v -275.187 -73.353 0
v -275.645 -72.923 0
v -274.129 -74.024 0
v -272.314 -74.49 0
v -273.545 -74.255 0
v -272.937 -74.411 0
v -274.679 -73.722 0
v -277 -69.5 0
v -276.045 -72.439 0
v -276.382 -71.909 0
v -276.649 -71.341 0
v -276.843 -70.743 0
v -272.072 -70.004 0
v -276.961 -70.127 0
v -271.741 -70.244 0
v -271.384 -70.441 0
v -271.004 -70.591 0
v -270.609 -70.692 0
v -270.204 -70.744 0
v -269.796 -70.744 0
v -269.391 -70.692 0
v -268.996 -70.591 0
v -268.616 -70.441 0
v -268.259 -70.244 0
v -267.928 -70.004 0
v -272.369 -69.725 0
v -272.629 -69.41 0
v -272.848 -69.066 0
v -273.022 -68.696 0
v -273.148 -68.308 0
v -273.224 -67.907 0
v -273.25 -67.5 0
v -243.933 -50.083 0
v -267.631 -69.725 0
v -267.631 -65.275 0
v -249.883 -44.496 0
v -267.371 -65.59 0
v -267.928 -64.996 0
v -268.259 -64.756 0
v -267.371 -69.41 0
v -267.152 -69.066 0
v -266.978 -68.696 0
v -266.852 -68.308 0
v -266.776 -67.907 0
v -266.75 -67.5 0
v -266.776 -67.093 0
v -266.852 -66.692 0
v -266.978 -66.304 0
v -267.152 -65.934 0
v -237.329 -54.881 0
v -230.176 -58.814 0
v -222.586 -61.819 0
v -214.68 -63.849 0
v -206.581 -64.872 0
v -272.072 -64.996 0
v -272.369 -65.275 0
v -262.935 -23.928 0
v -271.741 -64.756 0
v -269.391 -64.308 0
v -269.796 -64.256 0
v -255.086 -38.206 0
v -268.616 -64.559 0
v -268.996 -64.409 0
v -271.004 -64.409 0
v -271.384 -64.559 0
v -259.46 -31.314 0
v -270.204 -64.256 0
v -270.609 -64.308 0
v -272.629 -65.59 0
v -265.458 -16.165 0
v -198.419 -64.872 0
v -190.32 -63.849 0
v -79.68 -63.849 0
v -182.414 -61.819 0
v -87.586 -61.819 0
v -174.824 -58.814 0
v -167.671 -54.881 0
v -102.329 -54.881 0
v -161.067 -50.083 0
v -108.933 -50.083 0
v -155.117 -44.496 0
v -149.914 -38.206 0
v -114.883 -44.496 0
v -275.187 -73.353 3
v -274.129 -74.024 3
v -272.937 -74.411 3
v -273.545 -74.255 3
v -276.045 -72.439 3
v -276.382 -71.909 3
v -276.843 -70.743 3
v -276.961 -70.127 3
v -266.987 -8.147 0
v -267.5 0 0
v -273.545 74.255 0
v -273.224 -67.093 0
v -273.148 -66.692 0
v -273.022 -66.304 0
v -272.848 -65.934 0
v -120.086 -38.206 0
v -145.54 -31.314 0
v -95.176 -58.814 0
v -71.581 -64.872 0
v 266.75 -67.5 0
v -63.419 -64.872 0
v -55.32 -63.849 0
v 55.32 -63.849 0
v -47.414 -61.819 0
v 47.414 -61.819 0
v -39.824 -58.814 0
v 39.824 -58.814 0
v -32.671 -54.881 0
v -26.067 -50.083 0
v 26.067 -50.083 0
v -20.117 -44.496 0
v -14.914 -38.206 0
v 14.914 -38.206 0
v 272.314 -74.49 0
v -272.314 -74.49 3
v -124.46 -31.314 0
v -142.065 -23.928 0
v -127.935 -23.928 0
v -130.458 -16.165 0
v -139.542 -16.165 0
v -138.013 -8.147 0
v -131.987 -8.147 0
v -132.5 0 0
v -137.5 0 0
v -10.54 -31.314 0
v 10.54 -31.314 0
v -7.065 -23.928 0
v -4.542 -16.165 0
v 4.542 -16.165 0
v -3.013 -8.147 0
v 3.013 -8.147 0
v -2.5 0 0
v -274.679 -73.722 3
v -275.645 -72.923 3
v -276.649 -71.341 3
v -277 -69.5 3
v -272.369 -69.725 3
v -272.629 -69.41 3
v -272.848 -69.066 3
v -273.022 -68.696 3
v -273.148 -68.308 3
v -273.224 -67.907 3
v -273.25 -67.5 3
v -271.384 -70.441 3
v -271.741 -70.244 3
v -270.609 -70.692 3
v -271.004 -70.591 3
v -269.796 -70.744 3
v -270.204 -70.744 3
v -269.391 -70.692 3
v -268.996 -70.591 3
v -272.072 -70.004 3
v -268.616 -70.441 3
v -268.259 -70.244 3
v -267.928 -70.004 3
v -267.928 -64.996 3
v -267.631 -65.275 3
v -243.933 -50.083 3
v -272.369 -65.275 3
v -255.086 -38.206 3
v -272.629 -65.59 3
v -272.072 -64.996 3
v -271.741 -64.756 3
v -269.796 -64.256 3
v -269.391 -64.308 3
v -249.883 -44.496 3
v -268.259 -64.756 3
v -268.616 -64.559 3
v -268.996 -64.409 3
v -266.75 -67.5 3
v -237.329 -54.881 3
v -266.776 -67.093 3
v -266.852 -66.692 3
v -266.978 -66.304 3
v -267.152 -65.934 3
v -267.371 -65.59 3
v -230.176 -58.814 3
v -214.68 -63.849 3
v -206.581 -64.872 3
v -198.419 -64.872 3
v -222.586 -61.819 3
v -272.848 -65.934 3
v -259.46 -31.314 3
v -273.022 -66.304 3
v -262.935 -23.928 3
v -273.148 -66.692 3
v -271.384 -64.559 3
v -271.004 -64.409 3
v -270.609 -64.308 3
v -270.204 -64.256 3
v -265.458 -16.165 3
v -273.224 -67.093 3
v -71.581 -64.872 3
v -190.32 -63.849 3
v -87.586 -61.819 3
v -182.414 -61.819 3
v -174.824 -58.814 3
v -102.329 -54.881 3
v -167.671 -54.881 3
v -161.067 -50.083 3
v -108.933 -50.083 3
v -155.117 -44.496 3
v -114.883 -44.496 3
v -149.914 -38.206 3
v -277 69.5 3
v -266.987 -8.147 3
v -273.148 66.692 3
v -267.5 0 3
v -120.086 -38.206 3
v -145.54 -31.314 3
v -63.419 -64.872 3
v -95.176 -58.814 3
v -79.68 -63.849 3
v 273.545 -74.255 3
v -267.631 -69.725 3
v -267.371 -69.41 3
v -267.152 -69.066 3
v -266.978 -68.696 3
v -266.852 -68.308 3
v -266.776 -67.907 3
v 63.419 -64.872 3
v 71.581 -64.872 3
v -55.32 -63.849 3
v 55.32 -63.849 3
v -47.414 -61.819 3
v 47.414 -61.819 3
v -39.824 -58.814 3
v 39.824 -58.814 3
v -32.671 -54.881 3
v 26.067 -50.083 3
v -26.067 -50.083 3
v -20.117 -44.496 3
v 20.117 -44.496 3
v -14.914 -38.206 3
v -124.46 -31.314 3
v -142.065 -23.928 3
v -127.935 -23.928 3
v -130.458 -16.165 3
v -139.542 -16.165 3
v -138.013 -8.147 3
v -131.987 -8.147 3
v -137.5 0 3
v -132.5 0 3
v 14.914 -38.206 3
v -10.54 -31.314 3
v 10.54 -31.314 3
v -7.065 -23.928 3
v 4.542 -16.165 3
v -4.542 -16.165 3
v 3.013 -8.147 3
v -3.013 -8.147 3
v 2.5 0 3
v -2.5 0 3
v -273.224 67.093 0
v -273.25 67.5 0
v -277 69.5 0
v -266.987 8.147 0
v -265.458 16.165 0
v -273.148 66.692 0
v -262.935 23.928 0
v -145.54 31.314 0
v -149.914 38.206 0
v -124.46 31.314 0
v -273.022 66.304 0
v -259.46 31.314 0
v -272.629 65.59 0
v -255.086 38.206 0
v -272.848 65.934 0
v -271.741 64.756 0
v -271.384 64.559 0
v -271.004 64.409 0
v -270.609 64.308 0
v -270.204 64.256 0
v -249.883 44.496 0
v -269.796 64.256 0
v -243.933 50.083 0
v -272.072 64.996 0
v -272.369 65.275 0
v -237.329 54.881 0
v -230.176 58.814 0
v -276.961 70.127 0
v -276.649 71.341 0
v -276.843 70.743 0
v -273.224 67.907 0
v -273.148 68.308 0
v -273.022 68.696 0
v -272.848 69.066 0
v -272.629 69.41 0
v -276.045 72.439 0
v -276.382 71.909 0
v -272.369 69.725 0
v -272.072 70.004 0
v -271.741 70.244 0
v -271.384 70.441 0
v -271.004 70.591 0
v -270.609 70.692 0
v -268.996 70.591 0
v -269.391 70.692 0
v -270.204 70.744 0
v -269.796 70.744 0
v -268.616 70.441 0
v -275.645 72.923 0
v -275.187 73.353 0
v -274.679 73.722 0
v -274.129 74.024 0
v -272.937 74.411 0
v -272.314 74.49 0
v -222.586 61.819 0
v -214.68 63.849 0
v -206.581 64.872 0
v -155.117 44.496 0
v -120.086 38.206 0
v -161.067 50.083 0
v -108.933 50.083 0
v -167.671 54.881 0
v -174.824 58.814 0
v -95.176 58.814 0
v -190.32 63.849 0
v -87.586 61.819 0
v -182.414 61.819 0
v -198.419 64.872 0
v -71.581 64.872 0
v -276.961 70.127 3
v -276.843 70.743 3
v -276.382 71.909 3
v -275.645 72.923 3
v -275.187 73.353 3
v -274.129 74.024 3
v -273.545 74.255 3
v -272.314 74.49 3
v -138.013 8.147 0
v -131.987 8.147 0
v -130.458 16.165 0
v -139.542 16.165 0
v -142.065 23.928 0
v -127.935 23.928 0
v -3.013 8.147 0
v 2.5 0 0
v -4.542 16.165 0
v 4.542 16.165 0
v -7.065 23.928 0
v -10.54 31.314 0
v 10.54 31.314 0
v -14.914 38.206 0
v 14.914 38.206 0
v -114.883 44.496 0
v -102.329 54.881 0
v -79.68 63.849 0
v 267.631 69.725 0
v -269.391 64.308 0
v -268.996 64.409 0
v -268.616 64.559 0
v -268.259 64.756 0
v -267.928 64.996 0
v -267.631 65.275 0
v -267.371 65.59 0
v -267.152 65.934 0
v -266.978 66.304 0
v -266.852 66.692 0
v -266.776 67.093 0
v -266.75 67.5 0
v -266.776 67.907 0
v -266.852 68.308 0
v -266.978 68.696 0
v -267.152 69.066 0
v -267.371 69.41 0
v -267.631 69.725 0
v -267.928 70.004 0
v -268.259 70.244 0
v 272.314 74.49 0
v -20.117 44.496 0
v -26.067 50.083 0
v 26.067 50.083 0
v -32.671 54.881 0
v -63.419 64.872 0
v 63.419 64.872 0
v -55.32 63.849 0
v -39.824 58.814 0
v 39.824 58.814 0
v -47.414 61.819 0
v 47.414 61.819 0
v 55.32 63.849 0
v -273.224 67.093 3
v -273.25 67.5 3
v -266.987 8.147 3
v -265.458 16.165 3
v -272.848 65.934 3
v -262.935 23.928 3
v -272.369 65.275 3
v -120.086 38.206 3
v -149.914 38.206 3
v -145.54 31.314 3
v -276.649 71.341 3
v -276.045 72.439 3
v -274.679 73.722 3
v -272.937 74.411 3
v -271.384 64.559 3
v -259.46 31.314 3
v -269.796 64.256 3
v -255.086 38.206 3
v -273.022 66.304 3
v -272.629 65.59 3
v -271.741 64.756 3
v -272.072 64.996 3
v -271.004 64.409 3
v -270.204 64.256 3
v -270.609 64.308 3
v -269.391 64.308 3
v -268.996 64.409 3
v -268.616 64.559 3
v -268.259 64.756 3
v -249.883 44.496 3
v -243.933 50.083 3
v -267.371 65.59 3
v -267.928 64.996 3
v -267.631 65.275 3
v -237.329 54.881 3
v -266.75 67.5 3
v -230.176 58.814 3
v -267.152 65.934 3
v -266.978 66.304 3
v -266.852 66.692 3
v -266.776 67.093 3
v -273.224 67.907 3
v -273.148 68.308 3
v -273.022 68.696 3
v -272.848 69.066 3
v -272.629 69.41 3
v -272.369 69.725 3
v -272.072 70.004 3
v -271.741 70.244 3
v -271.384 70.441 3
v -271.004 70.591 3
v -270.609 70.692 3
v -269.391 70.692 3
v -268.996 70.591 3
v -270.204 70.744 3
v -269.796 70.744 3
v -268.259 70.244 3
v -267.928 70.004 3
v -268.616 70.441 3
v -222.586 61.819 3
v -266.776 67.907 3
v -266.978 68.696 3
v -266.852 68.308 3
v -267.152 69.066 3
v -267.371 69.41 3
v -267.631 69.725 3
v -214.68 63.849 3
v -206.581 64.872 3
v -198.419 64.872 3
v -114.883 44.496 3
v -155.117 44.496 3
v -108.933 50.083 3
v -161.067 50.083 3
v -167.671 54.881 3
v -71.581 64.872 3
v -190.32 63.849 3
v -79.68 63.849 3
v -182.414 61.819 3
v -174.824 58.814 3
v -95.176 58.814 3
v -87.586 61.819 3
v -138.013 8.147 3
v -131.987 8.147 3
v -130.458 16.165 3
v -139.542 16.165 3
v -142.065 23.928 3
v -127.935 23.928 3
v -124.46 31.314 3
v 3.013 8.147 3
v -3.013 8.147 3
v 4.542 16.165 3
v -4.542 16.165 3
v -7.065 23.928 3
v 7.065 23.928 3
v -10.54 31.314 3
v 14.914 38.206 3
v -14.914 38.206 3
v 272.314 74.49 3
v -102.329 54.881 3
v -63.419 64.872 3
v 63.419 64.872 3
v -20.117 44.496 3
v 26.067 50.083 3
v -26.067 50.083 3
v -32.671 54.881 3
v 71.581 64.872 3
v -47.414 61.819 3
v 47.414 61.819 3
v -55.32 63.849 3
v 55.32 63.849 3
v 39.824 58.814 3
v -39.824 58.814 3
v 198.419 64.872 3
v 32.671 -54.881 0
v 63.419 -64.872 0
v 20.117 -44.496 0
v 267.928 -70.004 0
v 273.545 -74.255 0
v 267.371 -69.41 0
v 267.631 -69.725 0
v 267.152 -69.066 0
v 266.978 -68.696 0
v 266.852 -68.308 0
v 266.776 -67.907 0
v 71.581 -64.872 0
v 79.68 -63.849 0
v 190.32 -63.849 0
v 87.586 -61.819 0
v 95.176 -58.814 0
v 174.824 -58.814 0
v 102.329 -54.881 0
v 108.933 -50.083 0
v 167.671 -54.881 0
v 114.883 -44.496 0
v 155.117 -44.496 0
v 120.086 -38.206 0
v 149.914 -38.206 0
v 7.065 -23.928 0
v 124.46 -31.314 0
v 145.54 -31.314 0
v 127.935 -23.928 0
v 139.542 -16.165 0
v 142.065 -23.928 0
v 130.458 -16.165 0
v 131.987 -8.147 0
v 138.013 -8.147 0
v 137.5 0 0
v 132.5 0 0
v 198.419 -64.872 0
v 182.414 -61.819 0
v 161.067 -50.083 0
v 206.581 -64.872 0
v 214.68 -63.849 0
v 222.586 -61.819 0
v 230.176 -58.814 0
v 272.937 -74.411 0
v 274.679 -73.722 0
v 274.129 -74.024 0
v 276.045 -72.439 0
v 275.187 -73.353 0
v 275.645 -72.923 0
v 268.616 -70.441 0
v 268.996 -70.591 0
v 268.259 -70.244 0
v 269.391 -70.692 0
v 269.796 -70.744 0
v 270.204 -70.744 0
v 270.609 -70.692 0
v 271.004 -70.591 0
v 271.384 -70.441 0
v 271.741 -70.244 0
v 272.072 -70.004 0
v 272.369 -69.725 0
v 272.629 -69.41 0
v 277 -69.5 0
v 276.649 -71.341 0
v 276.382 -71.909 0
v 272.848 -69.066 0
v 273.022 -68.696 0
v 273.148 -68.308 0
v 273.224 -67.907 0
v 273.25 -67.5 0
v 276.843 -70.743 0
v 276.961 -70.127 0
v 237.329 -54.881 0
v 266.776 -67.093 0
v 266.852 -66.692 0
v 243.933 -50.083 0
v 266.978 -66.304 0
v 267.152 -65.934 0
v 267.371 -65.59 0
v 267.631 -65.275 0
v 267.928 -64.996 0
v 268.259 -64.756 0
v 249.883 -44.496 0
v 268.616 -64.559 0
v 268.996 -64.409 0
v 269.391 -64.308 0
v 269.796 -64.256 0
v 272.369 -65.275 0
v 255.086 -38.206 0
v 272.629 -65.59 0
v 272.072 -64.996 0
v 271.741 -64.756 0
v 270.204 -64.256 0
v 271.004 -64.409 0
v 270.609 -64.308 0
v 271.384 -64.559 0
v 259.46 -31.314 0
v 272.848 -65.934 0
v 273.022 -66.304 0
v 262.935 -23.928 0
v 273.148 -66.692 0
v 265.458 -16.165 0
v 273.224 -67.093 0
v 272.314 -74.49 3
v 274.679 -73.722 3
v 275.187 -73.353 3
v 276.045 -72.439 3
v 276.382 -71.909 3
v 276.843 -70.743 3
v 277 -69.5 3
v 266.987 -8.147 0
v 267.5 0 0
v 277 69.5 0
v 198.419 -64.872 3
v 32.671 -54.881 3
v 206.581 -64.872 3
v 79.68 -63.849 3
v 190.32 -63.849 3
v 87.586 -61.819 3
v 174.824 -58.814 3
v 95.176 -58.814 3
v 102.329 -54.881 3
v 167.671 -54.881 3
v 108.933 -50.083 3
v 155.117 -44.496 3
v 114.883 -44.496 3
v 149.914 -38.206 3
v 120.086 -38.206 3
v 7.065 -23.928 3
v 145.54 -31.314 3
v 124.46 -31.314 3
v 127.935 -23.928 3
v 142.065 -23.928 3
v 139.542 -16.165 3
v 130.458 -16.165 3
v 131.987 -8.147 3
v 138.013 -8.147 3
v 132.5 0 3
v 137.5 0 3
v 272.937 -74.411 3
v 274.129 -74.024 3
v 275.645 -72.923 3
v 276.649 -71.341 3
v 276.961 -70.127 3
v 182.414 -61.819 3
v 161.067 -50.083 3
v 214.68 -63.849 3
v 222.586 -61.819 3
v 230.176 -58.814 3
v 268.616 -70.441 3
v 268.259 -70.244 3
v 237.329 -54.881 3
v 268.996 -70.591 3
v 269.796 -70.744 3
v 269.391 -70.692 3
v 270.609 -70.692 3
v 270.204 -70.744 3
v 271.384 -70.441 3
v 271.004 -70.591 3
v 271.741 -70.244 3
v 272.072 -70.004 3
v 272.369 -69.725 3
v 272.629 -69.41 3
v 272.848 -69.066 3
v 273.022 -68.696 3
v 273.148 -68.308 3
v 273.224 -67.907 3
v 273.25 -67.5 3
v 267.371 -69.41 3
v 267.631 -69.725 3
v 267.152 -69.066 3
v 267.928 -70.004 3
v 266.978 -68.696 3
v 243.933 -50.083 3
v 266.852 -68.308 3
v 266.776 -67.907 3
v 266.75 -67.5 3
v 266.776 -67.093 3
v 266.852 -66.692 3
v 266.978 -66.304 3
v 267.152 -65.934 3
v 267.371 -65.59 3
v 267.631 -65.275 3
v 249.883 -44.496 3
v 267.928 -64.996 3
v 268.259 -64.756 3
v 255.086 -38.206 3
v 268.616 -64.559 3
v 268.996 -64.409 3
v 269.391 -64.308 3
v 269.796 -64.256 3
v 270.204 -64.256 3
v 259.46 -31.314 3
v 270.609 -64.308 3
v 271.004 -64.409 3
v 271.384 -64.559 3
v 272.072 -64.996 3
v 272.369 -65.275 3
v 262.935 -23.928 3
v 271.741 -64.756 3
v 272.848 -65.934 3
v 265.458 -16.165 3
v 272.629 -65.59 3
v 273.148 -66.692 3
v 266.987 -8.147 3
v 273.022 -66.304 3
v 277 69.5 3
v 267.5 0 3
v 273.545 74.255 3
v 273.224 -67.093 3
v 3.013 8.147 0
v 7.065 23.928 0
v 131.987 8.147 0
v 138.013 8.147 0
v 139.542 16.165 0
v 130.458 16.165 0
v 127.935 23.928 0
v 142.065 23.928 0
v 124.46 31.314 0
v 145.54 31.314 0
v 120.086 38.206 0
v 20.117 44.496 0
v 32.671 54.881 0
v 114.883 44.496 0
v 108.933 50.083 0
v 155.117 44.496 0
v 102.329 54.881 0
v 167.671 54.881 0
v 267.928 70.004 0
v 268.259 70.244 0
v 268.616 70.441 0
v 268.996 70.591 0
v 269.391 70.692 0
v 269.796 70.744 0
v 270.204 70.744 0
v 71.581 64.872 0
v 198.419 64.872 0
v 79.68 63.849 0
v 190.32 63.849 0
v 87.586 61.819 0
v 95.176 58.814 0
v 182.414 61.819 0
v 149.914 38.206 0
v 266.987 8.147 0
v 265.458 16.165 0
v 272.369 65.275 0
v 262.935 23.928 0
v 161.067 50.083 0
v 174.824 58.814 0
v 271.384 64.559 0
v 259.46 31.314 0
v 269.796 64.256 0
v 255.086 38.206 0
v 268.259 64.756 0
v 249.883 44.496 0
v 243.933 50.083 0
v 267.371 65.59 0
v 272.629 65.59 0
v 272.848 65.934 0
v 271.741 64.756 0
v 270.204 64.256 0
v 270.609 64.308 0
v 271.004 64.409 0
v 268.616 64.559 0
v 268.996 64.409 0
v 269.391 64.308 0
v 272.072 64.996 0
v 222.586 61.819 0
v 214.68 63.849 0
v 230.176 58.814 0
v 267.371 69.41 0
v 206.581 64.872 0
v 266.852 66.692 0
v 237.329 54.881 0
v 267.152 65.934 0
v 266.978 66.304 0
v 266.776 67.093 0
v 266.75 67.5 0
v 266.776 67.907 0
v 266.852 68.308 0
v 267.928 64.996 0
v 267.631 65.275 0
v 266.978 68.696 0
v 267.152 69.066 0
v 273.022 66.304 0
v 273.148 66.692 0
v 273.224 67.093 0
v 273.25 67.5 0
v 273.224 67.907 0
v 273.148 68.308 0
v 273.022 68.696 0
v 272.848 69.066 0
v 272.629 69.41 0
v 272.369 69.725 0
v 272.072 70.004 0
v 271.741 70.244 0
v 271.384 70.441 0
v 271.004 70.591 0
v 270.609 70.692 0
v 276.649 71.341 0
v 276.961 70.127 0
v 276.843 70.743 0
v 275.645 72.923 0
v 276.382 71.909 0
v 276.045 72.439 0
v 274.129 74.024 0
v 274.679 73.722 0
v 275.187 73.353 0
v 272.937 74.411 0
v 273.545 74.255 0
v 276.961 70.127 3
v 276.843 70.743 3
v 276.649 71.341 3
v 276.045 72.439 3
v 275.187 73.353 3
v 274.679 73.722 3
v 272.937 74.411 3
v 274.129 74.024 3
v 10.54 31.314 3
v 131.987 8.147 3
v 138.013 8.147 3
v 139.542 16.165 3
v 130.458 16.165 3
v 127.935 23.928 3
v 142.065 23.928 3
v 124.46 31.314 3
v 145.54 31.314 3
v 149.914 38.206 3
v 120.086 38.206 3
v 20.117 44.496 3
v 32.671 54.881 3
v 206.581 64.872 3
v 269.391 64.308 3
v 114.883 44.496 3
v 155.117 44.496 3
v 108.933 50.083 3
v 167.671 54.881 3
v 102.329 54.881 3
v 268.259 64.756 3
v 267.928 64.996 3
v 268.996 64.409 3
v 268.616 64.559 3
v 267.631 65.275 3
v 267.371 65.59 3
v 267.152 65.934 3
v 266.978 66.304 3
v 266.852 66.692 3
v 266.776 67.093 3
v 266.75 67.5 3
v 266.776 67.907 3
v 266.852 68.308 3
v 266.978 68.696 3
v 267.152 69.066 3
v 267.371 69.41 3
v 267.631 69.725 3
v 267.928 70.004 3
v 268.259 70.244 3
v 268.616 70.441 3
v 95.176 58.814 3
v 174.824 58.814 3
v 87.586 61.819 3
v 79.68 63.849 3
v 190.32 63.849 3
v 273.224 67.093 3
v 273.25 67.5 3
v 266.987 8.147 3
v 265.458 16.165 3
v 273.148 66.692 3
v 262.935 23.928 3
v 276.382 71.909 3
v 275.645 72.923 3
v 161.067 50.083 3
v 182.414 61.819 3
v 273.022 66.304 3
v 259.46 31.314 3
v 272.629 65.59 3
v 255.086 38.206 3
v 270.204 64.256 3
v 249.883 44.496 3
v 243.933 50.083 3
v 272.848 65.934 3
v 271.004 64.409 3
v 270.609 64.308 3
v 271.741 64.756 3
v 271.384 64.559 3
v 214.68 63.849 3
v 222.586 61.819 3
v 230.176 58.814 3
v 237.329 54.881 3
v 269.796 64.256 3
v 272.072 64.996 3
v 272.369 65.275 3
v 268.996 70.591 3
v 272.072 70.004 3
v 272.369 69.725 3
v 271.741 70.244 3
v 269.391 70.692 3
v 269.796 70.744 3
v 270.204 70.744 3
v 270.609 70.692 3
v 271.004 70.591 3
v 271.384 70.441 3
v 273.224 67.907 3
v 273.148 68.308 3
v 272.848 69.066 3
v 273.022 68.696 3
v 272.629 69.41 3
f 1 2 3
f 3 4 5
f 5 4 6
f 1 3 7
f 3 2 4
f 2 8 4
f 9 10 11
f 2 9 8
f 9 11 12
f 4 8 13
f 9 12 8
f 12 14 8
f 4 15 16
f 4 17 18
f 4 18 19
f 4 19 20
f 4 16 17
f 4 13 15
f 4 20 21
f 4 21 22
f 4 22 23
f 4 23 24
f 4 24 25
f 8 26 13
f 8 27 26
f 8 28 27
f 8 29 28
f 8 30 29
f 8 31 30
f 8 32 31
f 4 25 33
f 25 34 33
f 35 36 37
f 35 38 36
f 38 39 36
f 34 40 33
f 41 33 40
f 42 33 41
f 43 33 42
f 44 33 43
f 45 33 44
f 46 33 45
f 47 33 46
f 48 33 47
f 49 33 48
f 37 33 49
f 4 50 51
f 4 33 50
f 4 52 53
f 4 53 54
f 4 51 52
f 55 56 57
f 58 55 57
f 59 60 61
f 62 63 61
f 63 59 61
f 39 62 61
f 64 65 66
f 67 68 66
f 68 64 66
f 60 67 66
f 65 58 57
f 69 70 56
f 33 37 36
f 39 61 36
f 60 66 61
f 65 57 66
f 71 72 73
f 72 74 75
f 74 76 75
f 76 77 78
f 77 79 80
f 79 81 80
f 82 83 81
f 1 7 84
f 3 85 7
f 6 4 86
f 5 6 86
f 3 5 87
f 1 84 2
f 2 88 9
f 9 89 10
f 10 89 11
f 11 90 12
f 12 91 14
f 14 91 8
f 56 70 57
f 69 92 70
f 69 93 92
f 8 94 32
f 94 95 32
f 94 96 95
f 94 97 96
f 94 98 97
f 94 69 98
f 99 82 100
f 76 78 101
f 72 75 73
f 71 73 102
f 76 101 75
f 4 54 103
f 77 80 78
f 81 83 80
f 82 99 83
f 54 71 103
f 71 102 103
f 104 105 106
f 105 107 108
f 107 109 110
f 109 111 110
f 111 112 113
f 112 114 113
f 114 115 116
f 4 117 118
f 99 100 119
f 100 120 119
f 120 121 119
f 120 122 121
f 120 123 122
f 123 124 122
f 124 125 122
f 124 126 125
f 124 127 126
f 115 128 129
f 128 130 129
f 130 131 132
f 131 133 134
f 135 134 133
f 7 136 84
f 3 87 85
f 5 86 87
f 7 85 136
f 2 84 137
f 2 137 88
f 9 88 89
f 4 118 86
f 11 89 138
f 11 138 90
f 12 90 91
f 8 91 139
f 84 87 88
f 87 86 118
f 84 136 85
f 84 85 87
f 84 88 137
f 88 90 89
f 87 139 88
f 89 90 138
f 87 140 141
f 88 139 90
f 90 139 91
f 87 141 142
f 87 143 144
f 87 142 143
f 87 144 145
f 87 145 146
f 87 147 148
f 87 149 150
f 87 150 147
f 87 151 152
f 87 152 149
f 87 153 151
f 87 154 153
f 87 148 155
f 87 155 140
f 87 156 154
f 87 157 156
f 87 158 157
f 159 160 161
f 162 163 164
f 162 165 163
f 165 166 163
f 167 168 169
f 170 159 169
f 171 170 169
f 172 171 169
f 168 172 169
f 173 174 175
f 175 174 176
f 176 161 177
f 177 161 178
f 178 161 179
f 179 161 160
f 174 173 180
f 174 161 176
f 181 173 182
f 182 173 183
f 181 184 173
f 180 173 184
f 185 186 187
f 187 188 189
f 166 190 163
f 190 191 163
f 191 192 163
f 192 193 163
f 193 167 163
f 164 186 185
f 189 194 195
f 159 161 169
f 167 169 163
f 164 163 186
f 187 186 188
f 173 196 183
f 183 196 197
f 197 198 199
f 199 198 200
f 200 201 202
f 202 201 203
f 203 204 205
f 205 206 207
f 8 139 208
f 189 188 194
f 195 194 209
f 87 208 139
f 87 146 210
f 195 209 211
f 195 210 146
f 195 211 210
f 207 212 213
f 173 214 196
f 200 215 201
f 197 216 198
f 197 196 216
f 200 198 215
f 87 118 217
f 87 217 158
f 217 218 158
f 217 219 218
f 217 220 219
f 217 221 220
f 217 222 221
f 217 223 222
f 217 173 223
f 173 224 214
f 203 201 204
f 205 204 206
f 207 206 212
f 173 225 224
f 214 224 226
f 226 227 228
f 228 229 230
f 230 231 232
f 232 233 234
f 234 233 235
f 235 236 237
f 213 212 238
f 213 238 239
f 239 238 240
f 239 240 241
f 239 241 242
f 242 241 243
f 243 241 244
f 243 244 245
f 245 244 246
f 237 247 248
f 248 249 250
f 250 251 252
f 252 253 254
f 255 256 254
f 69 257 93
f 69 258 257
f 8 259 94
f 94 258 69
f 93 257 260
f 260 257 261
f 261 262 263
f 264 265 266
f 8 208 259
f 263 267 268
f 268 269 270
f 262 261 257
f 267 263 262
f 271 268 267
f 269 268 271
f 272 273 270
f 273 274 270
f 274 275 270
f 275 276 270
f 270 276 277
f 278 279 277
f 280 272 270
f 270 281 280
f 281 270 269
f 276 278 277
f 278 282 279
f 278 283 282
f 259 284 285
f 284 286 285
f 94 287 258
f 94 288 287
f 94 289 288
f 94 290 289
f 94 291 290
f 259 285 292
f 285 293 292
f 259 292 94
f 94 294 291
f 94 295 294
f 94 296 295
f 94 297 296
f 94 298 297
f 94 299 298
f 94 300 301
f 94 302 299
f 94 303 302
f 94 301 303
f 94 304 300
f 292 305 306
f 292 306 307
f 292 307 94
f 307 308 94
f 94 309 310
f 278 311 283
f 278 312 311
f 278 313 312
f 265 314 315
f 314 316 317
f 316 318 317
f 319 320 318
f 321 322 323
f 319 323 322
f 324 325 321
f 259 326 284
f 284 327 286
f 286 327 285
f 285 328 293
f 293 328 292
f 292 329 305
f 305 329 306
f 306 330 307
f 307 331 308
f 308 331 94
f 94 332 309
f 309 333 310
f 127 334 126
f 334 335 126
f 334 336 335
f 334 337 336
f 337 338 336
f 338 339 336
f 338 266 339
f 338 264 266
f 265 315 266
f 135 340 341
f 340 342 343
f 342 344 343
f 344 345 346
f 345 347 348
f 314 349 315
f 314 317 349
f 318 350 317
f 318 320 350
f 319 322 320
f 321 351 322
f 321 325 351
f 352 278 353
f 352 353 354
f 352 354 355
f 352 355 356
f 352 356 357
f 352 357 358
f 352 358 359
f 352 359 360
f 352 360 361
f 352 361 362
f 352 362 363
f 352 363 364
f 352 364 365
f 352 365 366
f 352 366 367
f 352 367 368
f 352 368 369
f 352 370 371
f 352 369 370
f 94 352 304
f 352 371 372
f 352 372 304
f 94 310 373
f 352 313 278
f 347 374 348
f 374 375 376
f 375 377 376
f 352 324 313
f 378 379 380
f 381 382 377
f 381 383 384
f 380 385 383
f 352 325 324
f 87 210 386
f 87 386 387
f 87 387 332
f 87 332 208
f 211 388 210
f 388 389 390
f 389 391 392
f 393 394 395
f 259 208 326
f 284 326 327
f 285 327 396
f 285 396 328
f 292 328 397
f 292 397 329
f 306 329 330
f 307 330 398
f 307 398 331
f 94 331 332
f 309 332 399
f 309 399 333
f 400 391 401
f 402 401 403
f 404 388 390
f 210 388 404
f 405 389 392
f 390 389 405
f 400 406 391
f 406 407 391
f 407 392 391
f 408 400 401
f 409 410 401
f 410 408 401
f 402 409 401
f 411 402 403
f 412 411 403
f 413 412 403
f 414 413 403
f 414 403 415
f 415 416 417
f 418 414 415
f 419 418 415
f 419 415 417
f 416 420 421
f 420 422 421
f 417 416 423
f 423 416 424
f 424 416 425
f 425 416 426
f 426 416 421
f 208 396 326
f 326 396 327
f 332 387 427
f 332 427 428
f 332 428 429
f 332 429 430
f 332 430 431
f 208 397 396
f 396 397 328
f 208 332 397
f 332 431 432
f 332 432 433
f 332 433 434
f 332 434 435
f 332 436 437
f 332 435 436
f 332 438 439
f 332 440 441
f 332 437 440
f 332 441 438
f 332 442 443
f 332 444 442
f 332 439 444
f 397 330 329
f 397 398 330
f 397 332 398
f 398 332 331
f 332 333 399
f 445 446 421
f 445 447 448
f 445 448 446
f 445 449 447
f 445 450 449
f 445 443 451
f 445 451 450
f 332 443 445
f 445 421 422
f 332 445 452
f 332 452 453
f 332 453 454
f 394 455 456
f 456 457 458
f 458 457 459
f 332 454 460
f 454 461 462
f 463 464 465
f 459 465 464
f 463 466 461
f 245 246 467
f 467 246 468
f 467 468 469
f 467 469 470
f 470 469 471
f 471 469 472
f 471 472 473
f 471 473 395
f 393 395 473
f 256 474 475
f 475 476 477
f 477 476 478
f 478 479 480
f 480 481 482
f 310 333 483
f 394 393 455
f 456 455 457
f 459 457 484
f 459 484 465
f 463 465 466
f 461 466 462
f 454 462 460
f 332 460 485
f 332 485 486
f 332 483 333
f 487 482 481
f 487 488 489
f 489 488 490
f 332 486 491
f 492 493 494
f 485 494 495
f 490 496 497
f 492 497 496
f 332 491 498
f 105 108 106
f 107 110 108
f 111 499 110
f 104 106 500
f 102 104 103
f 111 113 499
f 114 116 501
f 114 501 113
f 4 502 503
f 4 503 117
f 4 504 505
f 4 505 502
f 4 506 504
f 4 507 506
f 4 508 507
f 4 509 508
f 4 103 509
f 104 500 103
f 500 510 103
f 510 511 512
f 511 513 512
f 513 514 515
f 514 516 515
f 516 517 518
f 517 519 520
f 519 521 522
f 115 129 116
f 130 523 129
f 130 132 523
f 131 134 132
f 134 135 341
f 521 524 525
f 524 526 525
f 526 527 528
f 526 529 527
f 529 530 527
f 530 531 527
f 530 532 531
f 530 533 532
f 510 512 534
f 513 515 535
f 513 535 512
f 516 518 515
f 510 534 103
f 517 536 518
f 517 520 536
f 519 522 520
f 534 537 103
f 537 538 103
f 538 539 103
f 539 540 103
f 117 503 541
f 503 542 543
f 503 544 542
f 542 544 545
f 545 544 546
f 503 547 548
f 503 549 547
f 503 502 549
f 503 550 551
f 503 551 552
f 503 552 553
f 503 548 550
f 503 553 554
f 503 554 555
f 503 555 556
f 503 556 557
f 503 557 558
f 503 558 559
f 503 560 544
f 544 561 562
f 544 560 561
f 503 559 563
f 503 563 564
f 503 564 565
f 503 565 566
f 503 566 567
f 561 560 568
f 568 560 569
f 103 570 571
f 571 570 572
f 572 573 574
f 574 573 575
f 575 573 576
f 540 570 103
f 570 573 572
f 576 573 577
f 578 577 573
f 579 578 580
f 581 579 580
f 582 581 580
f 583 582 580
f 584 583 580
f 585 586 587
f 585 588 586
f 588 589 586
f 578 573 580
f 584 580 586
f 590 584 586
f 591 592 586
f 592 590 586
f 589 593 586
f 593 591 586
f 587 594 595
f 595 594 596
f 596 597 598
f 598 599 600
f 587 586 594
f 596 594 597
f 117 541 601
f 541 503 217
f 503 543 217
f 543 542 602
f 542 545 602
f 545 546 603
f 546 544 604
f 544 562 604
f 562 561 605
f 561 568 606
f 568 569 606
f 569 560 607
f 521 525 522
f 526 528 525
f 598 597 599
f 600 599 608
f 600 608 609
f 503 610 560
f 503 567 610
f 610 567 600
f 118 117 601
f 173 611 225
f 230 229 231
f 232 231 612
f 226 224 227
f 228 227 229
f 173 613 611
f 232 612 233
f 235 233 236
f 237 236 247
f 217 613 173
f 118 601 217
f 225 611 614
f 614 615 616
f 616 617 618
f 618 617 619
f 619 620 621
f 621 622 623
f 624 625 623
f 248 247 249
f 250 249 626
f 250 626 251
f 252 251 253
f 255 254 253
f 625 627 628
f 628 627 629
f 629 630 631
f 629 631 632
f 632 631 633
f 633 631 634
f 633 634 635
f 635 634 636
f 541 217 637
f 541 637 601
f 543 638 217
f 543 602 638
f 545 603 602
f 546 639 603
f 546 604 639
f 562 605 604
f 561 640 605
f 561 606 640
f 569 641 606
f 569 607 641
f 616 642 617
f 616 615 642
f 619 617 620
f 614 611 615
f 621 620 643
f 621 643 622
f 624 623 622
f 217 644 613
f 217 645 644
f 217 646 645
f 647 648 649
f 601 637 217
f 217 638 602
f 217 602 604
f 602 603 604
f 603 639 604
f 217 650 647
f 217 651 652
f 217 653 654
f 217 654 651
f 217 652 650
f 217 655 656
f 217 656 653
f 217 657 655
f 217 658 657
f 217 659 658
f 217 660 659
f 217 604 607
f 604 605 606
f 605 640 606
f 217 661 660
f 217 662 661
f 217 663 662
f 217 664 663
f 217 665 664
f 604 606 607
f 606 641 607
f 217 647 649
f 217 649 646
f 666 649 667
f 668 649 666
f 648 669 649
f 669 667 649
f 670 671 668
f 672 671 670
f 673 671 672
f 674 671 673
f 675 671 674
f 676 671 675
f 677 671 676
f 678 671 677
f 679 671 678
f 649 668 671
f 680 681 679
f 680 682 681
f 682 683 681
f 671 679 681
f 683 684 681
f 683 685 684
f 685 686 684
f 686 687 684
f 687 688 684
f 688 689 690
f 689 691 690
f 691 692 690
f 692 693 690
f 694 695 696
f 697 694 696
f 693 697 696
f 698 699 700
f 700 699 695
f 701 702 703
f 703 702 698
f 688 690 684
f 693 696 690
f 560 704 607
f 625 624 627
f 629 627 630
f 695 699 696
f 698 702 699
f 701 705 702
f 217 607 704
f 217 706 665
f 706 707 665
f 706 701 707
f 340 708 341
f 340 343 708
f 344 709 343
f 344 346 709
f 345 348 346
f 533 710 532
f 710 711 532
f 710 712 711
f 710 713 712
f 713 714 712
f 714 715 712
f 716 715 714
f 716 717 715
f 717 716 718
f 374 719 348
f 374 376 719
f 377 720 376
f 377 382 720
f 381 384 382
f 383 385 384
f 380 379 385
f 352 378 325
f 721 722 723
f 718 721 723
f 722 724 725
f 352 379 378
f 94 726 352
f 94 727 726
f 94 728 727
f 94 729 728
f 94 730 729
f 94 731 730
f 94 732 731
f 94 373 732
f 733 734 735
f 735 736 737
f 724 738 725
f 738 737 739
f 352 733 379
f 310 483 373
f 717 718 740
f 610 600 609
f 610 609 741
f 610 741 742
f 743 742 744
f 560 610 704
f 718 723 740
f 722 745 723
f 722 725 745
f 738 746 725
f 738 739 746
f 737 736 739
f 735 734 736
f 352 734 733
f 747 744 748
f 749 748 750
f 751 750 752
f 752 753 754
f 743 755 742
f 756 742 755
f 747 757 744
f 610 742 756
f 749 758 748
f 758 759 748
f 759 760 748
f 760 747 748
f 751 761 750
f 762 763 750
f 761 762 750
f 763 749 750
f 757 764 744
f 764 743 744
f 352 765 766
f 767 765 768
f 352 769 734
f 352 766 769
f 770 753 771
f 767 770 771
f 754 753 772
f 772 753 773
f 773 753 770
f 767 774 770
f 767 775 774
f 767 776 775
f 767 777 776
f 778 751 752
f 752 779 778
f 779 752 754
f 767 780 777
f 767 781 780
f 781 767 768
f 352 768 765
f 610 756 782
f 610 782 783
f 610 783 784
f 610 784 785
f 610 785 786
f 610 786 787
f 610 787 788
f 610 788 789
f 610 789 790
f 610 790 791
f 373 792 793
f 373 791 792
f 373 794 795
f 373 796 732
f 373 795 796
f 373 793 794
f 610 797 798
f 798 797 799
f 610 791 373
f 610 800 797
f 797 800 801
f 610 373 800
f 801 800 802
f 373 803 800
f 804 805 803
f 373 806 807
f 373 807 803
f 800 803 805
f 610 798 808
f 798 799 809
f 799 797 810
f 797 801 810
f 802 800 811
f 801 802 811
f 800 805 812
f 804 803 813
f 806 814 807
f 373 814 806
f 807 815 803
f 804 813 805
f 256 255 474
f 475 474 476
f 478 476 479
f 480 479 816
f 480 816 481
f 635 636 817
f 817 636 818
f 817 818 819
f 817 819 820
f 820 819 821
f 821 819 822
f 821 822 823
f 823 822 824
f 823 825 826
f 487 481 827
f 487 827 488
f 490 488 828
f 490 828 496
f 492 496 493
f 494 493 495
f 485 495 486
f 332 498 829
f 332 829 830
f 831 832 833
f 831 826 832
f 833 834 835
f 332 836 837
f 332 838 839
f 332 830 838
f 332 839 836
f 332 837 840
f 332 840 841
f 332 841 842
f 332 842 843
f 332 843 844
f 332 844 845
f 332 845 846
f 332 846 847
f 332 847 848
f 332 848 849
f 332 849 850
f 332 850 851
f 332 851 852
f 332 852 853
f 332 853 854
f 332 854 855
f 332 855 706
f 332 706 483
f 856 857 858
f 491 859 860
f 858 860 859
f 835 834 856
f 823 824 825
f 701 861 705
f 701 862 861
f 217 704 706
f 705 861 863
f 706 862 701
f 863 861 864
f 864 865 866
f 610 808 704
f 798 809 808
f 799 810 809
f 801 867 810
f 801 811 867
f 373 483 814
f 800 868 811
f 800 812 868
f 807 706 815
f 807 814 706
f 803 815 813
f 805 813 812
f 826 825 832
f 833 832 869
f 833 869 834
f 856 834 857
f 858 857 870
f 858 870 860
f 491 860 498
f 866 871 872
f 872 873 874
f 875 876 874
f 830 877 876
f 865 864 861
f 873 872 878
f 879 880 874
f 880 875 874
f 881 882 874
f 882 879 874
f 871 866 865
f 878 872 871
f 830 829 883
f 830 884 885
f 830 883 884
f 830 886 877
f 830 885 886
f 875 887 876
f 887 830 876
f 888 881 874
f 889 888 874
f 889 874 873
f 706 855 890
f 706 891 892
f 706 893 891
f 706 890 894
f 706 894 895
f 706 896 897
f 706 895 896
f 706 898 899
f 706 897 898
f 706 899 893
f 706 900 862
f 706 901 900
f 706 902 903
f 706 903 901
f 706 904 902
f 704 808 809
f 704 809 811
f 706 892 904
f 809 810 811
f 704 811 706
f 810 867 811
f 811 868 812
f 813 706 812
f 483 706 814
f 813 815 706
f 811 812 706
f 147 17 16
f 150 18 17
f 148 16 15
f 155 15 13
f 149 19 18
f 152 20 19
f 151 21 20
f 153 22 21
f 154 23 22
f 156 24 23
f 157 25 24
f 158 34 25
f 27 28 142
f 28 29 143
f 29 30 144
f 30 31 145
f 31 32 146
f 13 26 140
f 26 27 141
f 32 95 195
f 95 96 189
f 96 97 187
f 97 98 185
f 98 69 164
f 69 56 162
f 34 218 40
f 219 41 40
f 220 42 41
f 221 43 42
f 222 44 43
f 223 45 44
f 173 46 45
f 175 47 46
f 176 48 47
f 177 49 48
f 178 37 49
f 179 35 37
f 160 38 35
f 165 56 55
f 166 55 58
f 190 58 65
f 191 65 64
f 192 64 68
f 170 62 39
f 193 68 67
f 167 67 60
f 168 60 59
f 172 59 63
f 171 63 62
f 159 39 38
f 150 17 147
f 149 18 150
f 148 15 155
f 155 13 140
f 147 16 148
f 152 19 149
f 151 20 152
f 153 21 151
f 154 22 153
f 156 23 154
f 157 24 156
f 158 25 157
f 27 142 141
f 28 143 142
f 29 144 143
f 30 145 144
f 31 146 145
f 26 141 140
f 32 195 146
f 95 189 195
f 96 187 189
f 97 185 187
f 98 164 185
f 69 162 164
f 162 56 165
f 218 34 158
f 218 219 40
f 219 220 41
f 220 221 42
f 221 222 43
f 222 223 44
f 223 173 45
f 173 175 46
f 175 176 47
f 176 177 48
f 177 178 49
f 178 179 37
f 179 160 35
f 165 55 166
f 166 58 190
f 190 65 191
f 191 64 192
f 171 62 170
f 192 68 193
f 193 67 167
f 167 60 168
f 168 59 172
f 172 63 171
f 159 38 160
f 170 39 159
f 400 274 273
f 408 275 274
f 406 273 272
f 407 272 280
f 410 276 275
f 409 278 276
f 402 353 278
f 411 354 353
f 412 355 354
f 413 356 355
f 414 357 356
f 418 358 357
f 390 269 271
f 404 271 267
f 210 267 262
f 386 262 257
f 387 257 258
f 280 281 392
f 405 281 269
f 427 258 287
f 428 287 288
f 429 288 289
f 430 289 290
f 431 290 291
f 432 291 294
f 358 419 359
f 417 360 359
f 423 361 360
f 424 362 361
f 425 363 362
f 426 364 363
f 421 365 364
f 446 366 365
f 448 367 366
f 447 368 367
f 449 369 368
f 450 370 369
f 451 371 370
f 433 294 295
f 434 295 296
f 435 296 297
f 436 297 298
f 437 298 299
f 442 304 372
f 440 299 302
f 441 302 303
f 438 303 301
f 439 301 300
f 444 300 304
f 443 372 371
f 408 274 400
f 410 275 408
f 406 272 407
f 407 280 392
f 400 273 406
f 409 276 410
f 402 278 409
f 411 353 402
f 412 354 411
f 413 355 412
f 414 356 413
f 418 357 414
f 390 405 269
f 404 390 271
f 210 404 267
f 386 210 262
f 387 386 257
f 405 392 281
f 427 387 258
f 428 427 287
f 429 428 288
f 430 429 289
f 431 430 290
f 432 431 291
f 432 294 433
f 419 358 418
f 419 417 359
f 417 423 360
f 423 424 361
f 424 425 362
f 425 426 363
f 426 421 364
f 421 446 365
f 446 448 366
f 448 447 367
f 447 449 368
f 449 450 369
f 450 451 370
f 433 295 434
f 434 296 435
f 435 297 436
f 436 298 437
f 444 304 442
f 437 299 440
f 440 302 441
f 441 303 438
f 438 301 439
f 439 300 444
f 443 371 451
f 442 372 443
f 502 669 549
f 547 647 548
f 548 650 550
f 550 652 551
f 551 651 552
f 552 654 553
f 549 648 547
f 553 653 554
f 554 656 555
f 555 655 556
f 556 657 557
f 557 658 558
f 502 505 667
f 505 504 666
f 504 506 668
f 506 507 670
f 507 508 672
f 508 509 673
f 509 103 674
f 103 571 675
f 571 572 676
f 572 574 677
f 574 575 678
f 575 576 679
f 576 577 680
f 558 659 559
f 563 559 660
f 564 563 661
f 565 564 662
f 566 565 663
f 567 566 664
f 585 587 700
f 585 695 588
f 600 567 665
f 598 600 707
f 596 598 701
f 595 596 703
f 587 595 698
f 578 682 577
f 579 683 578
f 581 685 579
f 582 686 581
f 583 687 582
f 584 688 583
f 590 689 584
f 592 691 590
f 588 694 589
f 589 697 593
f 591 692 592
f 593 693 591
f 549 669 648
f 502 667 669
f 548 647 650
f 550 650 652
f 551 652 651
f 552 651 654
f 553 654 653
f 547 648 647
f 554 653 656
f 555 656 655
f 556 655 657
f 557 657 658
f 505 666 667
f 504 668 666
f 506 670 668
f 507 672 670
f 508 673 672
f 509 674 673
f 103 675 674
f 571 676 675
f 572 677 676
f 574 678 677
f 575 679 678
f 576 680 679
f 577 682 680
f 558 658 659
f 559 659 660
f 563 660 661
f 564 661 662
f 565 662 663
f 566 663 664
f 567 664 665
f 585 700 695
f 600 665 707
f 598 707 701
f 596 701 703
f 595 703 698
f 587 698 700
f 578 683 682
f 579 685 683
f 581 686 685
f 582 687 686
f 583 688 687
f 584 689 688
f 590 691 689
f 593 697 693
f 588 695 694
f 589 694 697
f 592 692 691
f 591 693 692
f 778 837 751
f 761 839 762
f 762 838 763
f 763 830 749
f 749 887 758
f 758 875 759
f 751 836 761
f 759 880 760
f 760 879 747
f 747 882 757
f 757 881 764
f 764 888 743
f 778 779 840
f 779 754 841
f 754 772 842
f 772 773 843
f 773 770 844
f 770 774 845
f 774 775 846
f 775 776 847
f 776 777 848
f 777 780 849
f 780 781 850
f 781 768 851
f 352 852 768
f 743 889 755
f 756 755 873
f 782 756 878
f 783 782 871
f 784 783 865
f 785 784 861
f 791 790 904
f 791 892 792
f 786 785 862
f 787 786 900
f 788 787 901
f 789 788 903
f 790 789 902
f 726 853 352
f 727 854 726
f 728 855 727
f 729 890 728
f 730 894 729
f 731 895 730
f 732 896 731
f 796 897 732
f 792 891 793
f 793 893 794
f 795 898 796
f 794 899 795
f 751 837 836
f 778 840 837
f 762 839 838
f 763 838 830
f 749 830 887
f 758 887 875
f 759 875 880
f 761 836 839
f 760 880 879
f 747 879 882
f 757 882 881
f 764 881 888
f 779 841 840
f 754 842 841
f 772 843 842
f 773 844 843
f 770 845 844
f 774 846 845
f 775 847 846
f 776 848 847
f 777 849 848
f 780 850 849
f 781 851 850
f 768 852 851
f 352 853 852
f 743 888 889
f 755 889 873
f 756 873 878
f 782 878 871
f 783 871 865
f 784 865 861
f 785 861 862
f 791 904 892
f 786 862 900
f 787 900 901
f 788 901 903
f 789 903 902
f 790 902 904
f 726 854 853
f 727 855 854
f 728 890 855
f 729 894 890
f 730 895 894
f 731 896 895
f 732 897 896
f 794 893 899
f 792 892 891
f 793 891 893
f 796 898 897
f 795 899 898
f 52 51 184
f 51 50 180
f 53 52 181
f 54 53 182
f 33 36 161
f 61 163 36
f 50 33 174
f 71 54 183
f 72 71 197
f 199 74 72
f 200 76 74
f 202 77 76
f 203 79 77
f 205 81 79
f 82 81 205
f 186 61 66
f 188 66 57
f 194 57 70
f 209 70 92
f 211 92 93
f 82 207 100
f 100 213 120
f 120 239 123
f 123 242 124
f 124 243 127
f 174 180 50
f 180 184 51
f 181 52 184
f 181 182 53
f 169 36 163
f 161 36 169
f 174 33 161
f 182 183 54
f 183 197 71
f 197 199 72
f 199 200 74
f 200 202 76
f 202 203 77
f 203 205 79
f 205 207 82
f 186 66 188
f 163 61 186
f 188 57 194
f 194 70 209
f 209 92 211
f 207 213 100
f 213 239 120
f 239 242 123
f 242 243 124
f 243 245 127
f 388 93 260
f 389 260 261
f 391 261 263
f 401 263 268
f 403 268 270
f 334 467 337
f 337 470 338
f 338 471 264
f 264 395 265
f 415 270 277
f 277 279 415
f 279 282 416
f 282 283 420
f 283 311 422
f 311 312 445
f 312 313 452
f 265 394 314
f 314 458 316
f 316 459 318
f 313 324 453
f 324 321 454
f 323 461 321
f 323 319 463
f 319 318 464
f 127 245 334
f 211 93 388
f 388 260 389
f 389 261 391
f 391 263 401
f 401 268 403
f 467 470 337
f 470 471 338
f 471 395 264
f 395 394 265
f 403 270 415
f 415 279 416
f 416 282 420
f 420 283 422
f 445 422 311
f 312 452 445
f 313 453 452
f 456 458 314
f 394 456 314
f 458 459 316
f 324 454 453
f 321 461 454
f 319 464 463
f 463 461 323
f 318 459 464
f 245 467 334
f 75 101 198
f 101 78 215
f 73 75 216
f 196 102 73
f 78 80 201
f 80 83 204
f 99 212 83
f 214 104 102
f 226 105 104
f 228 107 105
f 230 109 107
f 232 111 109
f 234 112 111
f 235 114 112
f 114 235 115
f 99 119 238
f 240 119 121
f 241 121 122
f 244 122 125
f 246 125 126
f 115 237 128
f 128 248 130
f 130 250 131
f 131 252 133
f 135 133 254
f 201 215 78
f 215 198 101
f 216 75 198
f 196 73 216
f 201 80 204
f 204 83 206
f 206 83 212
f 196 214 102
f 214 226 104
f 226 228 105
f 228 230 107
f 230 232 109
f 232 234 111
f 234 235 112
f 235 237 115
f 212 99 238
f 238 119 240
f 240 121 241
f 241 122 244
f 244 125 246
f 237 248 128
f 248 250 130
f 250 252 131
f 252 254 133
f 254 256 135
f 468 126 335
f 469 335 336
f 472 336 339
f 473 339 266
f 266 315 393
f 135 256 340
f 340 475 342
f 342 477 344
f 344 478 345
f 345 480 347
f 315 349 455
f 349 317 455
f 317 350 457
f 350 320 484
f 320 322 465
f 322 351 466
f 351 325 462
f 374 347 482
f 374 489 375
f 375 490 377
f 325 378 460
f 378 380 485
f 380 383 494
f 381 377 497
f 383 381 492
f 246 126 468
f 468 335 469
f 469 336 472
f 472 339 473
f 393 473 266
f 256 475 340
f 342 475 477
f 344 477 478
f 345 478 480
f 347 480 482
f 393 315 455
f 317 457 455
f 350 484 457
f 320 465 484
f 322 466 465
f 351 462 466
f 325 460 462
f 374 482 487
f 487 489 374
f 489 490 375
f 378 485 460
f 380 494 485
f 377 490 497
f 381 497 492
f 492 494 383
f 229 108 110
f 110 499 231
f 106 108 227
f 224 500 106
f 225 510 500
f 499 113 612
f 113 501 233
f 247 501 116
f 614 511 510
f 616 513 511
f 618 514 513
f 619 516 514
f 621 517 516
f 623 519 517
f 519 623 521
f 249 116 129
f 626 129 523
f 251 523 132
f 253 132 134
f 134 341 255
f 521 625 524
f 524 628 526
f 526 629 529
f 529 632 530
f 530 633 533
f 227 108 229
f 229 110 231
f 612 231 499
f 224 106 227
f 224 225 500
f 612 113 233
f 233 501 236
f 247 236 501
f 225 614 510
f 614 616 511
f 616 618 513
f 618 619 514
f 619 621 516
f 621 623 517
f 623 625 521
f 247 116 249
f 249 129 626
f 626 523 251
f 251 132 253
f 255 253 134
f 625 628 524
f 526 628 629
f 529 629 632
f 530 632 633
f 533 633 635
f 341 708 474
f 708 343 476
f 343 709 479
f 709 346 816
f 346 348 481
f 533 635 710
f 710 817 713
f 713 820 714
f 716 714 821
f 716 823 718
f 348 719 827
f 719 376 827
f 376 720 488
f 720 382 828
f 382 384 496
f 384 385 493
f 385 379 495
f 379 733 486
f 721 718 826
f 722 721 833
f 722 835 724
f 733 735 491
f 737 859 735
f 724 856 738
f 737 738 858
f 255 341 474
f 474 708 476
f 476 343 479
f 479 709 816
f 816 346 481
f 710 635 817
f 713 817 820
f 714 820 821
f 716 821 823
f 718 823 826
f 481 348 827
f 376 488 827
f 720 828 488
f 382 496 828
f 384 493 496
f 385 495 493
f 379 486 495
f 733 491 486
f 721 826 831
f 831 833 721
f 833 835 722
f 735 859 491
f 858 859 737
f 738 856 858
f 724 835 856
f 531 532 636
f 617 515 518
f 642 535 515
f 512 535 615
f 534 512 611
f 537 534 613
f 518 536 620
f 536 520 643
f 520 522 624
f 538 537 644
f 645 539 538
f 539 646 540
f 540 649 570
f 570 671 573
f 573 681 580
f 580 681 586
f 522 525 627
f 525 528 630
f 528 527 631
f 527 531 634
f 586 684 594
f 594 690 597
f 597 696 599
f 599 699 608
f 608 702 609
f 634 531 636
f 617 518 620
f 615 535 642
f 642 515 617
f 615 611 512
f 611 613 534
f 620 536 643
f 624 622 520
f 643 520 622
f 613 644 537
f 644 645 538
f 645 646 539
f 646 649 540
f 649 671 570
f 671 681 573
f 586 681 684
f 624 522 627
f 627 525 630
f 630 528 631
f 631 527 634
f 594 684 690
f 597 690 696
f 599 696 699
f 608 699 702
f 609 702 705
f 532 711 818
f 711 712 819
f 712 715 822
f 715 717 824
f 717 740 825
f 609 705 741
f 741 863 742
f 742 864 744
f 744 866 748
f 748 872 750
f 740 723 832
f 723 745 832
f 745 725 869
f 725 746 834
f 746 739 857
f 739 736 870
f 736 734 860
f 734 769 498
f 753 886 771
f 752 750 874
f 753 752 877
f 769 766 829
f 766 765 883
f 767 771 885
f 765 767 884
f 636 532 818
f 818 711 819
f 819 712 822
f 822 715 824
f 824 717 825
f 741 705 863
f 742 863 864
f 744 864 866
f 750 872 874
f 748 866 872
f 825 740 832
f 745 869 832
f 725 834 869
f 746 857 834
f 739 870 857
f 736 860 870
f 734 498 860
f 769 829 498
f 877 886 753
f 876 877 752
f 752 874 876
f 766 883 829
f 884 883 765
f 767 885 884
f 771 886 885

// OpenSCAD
$fn = 50;

difference() {
	union() {
		hull() {
			translate(v = [-272.0, 69.5, 0]) {
				cylinder(h = 3, r = 5);
			}
			translate(v = [272.0, 69.5, 0]) {
				cylinder(h = 3, r = 5);
			}
			translate(v = [-272.0, -69.5, 0]) {
				cylinder(h = 3, r = 5);
			}
			translate(v = [272.0, -69.5, 0]) {
				cylinder(h = 3, r = 5);
			}
		}
	}
	union() {
		translate(v = [-270.0, -67.5, -100.0]) {
			cylinder(h = 200, r = 3.25);
		}
		translate(v = [-270.0, 67.5, -100.0]) {
			cylinder(h = 200, r = 3.25);
		}
		translate(v = [270.0, -67.5, -100.0]) {
			cylinder(h = 200, r = 3.25);
		}
		translate(v = [270.0, 67.5, -100.0]) {
			cylinder(h = 200, r = 3.25);
		}
		translate(v = [-270.0, -67.5, -100.0]) {
			cylinder(h = 200, r = 1.8);
		}
		translate(v = [-270.0, 67.5, -100.0]) {
			cylinder(h = 200, r = 1.8);
		}
		translate(v = [270.0, -67.5, -100.0]) {
			cylinder(h = 200, r = 1.8);
		}
		translate(v = [270.0, 67.5, -100.0]) {
			cylinder(h = 200, r = 1.8);
		}
		translate(v = [-202.5, 0, 0.0]) {
			cylinder(h = 3, r = 65.0);
		}
		translate(v = [-67.5, 0, 0.0]) {
			cylinder(h = 3, r = 65.0);
		}
		translate(v = [67.5, 0, 0.0]) {
			cylinder(h = 3, r = 65.0);
		}
		translate(v = [202.5, 0, 0.0]) {
			cylinder(h = 3, r = 65.0);
		}
	}
}
